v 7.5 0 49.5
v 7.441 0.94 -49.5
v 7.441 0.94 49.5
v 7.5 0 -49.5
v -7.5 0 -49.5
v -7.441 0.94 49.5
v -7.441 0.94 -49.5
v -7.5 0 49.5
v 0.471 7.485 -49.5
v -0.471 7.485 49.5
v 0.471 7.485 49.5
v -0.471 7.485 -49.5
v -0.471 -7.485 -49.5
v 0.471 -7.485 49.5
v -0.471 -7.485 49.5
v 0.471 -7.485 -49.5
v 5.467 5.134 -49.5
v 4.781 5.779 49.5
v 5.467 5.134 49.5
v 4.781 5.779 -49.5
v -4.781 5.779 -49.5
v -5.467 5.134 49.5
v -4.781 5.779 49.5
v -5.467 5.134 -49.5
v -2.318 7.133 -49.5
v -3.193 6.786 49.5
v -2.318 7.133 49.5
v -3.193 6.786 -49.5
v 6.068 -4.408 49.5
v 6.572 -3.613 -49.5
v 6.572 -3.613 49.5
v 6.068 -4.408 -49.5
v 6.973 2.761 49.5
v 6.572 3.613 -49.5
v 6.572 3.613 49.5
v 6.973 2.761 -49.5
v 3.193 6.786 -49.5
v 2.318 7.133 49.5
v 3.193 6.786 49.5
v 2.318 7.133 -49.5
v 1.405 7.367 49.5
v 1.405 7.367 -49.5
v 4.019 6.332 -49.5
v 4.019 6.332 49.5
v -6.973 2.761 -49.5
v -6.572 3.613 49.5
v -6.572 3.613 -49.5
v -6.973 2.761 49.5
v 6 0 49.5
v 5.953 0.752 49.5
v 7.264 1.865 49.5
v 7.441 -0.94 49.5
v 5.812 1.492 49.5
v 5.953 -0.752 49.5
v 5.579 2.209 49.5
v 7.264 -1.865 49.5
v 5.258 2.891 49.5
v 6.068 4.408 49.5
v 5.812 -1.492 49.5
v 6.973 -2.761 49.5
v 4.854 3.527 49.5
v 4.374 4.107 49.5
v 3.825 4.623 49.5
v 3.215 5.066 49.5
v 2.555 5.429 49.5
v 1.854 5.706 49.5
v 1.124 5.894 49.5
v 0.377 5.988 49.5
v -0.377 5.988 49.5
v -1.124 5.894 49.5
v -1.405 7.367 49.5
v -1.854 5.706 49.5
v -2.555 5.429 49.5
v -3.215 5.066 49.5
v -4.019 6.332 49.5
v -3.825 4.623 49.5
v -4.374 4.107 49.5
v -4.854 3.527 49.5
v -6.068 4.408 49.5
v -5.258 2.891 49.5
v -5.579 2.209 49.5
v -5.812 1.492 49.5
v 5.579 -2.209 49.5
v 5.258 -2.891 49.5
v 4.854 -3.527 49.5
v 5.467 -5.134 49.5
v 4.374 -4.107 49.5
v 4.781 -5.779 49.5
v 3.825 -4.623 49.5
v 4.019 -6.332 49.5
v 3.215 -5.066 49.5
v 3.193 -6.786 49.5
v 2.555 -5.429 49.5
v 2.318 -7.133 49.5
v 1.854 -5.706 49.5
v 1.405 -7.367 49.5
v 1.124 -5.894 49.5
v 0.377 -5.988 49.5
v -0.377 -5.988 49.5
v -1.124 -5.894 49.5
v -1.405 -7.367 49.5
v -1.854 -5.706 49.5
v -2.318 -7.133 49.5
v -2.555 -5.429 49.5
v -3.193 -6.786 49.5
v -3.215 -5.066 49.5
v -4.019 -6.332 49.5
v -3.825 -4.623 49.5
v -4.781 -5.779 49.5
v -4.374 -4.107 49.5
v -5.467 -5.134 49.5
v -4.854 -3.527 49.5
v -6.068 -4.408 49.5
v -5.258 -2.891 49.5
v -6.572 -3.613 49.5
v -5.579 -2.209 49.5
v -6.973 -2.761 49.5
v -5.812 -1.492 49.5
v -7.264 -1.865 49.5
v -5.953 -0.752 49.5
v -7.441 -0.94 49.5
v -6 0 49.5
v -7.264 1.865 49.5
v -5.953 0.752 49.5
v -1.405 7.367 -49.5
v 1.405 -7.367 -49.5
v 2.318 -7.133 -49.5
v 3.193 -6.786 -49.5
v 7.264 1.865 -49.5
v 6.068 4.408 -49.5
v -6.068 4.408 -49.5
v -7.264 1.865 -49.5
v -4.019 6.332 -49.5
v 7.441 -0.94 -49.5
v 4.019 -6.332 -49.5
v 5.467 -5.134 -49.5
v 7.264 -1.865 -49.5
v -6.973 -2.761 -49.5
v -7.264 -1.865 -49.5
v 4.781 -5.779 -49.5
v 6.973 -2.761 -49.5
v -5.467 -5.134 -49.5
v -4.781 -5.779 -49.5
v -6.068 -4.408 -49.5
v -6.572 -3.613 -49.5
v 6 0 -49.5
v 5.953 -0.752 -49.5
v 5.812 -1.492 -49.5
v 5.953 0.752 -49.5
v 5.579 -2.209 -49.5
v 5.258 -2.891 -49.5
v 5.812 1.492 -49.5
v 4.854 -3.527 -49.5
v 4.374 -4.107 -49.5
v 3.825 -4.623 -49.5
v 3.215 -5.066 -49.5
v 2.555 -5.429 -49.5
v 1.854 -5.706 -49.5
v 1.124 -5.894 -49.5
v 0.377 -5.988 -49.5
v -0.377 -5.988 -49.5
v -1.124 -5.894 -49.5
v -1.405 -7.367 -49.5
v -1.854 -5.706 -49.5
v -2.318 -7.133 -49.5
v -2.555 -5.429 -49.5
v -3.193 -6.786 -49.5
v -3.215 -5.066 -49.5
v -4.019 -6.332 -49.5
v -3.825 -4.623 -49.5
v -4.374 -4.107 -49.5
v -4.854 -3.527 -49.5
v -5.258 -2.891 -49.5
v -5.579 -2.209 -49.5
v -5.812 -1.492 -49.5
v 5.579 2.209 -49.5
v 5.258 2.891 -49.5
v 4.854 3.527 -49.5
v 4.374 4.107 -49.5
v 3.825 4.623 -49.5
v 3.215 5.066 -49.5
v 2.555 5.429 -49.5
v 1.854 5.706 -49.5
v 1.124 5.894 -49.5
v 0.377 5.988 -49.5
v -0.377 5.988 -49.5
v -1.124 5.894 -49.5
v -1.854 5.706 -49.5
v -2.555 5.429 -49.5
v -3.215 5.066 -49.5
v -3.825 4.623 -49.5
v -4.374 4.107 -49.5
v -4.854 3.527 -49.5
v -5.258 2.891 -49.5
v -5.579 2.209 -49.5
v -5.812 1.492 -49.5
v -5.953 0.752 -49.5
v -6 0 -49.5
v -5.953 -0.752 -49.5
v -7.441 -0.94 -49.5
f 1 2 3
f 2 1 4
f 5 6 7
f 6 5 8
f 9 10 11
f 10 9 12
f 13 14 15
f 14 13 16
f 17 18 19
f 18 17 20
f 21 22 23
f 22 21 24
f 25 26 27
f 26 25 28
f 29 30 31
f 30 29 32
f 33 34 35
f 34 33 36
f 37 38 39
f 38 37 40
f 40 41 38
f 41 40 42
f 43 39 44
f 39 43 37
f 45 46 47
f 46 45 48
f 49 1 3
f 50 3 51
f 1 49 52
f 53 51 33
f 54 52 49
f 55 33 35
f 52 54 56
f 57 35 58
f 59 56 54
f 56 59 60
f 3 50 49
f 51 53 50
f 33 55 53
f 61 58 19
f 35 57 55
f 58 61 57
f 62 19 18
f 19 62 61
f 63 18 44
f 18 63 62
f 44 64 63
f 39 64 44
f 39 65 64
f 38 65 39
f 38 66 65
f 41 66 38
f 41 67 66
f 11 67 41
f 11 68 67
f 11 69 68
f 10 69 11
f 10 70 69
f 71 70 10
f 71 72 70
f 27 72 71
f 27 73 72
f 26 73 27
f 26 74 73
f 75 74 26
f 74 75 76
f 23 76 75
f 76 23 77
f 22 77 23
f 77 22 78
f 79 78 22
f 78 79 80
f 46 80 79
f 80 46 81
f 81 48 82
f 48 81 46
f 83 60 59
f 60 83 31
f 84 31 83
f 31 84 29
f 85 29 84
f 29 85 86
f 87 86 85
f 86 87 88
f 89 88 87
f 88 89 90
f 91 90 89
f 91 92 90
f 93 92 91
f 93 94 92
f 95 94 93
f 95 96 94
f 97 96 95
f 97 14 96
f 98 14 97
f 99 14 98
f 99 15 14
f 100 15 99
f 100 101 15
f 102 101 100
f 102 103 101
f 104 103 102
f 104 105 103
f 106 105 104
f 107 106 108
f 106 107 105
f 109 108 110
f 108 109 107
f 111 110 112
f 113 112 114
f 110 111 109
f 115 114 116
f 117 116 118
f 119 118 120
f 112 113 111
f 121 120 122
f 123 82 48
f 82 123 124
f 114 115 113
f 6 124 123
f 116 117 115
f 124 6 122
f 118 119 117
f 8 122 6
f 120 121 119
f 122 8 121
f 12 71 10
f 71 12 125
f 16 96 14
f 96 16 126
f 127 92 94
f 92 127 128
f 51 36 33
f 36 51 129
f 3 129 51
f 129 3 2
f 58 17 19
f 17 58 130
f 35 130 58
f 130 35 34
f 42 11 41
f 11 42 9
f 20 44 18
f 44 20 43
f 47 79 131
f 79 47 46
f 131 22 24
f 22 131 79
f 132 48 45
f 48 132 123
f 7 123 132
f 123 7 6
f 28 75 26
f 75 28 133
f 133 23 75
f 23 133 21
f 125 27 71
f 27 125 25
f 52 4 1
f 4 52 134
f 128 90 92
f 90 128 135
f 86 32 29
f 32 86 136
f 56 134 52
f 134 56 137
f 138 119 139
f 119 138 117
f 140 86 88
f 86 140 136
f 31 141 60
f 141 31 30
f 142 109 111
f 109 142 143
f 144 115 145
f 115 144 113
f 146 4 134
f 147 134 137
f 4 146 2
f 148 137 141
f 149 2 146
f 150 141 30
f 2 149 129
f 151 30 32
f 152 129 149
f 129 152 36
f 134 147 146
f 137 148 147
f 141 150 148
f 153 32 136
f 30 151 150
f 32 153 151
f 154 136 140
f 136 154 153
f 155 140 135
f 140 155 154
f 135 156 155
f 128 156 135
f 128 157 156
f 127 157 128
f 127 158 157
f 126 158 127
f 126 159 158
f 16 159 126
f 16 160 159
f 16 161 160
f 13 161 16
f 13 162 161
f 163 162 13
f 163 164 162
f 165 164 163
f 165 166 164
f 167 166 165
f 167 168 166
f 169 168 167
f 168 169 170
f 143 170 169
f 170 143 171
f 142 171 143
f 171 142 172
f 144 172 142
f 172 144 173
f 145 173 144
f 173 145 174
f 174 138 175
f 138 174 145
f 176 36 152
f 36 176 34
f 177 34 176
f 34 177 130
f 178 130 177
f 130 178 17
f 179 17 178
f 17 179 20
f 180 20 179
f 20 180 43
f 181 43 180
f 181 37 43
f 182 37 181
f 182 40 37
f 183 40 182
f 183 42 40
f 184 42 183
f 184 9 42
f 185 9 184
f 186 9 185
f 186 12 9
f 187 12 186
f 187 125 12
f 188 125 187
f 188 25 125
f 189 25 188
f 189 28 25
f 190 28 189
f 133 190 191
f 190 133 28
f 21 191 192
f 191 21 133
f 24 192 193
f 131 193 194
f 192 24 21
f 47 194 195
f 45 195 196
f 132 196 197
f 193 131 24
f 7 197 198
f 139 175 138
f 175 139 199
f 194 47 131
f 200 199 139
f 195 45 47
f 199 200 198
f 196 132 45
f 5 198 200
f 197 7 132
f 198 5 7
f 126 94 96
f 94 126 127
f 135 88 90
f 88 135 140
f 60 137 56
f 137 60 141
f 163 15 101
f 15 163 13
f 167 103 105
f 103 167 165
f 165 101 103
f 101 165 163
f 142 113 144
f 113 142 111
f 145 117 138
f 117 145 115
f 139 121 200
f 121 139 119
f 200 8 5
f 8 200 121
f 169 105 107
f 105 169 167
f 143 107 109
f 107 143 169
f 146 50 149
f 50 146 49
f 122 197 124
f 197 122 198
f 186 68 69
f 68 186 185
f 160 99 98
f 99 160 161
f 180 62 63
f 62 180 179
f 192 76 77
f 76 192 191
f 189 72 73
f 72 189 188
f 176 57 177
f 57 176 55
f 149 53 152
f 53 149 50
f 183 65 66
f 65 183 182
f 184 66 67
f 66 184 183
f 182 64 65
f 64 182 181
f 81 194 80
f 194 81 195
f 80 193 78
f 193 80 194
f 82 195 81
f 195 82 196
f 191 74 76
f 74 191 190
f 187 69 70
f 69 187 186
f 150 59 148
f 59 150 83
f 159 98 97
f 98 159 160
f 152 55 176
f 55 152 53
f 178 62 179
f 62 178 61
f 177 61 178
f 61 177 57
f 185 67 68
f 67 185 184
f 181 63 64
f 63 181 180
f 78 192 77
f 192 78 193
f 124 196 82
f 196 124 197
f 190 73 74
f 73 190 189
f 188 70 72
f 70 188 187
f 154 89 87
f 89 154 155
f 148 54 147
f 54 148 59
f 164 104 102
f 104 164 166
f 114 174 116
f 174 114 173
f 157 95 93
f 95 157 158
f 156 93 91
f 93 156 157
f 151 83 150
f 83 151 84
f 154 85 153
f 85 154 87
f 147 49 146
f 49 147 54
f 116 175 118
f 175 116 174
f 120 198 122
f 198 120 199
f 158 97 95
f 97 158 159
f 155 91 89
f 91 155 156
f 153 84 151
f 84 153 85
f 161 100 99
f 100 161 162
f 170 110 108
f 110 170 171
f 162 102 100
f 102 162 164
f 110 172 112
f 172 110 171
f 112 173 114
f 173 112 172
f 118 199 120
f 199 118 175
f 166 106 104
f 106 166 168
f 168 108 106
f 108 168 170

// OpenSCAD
$fn = 50;


difference() {
	union() {
		translate(v = [0, 0, -49.5000000000]) {
			cylinder(h = 99, r = 7.5000000000);
		}
	}
	union() {
		translate(v = [0, 0, -100.0000000000]) {
			cylinder(h = 200, r = 6);
		}
	}
}
